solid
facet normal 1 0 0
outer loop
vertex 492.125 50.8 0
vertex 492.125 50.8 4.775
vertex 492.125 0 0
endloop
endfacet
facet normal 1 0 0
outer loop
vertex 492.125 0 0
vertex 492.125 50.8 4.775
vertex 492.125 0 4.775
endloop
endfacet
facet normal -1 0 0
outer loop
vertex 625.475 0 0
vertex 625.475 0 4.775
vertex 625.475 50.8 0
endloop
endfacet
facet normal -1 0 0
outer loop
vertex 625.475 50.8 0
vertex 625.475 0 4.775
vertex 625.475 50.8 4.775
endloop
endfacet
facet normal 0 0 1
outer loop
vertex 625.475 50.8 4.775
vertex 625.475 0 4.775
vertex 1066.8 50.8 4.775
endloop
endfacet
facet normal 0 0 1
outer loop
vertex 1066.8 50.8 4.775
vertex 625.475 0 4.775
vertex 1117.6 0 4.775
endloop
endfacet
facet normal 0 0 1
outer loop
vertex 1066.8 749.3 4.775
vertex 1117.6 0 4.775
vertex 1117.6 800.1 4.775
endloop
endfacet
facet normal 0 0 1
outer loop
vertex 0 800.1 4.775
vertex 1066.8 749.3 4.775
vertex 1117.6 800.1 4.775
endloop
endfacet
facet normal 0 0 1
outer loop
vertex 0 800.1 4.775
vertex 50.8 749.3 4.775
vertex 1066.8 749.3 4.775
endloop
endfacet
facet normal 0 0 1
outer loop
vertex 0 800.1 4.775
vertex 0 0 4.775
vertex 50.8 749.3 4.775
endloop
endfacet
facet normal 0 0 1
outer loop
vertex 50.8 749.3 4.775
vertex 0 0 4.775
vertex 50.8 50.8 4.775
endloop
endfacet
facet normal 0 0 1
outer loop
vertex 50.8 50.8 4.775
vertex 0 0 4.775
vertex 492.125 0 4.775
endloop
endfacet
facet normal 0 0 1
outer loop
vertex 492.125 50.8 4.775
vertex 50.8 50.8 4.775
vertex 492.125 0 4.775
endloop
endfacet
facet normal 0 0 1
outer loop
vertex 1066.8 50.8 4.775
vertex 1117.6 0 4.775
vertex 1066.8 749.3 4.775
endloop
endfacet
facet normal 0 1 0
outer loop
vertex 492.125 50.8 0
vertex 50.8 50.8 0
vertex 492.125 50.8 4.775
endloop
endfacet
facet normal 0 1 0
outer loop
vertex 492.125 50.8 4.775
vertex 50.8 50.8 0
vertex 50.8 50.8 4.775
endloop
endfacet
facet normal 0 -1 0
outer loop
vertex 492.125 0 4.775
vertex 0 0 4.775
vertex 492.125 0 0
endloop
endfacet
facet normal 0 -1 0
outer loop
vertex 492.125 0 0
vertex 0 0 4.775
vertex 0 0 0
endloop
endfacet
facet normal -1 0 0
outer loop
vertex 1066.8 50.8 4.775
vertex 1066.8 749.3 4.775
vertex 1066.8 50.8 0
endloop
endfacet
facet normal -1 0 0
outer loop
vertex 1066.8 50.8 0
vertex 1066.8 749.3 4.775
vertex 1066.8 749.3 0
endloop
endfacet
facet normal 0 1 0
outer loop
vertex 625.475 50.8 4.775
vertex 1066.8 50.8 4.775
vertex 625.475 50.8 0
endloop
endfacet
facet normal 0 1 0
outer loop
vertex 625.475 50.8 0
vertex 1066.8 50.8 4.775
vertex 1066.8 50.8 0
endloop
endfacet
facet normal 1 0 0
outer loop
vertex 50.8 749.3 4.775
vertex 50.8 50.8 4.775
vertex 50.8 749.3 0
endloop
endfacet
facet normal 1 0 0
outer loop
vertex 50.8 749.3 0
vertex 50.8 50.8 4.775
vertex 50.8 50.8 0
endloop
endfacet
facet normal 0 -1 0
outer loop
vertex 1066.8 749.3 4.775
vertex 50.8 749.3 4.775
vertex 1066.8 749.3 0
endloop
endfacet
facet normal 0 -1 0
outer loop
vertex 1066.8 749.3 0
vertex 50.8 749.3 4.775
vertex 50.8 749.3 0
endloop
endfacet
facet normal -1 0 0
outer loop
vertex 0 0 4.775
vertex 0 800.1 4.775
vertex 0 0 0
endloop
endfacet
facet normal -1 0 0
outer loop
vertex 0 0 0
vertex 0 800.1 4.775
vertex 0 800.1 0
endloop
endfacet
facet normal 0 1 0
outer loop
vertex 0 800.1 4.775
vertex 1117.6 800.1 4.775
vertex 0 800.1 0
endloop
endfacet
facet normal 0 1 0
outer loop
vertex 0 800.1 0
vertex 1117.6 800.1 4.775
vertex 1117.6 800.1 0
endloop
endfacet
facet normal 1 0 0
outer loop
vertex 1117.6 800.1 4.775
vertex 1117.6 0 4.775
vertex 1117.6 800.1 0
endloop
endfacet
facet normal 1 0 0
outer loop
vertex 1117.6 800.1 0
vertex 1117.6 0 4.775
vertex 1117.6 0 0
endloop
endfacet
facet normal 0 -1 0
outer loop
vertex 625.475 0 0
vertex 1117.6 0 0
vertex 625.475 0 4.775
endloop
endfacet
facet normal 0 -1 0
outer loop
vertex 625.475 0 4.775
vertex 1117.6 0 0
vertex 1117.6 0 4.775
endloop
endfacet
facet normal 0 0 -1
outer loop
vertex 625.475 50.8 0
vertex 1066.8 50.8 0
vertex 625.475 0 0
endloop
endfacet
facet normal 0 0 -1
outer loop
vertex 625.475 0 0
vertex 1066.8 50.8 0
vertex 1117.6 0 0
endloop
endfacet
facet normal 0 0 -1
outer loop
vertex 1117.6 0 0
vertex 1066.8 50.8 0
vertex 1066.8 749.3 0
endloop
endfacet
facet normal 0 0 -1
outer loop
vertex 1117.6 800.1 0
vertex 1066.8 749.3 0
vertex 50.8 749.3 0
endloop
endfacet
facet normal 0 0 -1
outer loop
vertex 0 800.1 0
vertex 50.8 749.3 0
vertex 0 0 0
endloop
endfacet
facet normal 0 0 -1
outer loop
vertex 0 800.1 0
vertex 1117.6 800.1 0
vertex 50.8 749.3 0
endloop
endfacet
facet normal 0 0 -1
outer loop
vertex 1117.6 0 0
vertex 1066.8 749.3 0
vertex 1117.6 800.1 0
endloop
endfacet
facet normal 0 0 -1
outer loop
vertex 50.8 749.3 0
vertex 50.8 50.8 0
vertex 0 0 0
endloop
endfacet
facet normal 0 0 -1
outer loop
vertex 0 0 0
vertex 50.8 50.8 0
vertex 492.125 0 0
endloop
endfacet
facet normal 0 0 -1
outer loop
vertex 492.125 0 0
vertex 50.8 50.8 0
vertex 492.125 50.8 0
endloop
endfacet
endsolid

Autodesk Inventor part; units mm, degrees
ref_plane "YZ Plane" through (0, 0, 0) normal (1, 0, 0) x (0, 1, 0)
ref_plane "XZ Plane" through (0, 0, 0) normal (0, 1, 0) x (-1, 0, 0)
ref_plane "XY Plane" through (0, 0, 0) normal (0, 0, 1) x (1, 0, 0)
sketch "Sketch1" plane through (0, 0, 0) normal (0, 0, 1) x (1, 0, 0)
  line L0 (0, 0) -> (1117.6, 0)
  line L1 (1117.6, 0) -> (1117.6, 800.1)
  line L2 (1117.6, 800.1) -> (0, 800.1)
  line L3 (0, 800.1) -> (0, 0)
  line L4 (50.8, 749.3) -> (1066.8, 749.3)
  line L5 (1066.8, 749.3) -> (1066.8, 50.8)
  line L6 (1066.8, 50.8) -> (50.8, 50.8)
  line L7 (50.8, 50.8) -> (50.8, 749.3)
  dimension "d0" = 800.1
  dimension "d1" = 1117.6
  dimension "d2" = 50.8
extrude "Extrusion1" add sketch "Sketch1" along normal blind 4.7752
sketch "Sketch2" plane through (0, 0, 4.7752) normal (0, 0, 1) x (1, 0, 0)
  line L0 (1066.8, 50.8) -> (50.8, 50.8) projected
  line L1 (0, 0) -> (0, 800.1) projected
  line L2 (1117.6, 0) -> (0, 0) projected
  line L3 (492.125, 0) -> (625.475, 0)
  line L4 (625.475, 0) -> (625.475, 50.8)
  line L5 (625.475, 50.8) -> (492.125, 50.8)
  line L6 (492.125, 50.8) -> (492.125, 0)
  dimension "d5" = 133.35
  dimension "d6" = 492.125
extrude "Extrusion2" cut sketch "Sketch2" against normal through all
properties part number "backboardtape"
